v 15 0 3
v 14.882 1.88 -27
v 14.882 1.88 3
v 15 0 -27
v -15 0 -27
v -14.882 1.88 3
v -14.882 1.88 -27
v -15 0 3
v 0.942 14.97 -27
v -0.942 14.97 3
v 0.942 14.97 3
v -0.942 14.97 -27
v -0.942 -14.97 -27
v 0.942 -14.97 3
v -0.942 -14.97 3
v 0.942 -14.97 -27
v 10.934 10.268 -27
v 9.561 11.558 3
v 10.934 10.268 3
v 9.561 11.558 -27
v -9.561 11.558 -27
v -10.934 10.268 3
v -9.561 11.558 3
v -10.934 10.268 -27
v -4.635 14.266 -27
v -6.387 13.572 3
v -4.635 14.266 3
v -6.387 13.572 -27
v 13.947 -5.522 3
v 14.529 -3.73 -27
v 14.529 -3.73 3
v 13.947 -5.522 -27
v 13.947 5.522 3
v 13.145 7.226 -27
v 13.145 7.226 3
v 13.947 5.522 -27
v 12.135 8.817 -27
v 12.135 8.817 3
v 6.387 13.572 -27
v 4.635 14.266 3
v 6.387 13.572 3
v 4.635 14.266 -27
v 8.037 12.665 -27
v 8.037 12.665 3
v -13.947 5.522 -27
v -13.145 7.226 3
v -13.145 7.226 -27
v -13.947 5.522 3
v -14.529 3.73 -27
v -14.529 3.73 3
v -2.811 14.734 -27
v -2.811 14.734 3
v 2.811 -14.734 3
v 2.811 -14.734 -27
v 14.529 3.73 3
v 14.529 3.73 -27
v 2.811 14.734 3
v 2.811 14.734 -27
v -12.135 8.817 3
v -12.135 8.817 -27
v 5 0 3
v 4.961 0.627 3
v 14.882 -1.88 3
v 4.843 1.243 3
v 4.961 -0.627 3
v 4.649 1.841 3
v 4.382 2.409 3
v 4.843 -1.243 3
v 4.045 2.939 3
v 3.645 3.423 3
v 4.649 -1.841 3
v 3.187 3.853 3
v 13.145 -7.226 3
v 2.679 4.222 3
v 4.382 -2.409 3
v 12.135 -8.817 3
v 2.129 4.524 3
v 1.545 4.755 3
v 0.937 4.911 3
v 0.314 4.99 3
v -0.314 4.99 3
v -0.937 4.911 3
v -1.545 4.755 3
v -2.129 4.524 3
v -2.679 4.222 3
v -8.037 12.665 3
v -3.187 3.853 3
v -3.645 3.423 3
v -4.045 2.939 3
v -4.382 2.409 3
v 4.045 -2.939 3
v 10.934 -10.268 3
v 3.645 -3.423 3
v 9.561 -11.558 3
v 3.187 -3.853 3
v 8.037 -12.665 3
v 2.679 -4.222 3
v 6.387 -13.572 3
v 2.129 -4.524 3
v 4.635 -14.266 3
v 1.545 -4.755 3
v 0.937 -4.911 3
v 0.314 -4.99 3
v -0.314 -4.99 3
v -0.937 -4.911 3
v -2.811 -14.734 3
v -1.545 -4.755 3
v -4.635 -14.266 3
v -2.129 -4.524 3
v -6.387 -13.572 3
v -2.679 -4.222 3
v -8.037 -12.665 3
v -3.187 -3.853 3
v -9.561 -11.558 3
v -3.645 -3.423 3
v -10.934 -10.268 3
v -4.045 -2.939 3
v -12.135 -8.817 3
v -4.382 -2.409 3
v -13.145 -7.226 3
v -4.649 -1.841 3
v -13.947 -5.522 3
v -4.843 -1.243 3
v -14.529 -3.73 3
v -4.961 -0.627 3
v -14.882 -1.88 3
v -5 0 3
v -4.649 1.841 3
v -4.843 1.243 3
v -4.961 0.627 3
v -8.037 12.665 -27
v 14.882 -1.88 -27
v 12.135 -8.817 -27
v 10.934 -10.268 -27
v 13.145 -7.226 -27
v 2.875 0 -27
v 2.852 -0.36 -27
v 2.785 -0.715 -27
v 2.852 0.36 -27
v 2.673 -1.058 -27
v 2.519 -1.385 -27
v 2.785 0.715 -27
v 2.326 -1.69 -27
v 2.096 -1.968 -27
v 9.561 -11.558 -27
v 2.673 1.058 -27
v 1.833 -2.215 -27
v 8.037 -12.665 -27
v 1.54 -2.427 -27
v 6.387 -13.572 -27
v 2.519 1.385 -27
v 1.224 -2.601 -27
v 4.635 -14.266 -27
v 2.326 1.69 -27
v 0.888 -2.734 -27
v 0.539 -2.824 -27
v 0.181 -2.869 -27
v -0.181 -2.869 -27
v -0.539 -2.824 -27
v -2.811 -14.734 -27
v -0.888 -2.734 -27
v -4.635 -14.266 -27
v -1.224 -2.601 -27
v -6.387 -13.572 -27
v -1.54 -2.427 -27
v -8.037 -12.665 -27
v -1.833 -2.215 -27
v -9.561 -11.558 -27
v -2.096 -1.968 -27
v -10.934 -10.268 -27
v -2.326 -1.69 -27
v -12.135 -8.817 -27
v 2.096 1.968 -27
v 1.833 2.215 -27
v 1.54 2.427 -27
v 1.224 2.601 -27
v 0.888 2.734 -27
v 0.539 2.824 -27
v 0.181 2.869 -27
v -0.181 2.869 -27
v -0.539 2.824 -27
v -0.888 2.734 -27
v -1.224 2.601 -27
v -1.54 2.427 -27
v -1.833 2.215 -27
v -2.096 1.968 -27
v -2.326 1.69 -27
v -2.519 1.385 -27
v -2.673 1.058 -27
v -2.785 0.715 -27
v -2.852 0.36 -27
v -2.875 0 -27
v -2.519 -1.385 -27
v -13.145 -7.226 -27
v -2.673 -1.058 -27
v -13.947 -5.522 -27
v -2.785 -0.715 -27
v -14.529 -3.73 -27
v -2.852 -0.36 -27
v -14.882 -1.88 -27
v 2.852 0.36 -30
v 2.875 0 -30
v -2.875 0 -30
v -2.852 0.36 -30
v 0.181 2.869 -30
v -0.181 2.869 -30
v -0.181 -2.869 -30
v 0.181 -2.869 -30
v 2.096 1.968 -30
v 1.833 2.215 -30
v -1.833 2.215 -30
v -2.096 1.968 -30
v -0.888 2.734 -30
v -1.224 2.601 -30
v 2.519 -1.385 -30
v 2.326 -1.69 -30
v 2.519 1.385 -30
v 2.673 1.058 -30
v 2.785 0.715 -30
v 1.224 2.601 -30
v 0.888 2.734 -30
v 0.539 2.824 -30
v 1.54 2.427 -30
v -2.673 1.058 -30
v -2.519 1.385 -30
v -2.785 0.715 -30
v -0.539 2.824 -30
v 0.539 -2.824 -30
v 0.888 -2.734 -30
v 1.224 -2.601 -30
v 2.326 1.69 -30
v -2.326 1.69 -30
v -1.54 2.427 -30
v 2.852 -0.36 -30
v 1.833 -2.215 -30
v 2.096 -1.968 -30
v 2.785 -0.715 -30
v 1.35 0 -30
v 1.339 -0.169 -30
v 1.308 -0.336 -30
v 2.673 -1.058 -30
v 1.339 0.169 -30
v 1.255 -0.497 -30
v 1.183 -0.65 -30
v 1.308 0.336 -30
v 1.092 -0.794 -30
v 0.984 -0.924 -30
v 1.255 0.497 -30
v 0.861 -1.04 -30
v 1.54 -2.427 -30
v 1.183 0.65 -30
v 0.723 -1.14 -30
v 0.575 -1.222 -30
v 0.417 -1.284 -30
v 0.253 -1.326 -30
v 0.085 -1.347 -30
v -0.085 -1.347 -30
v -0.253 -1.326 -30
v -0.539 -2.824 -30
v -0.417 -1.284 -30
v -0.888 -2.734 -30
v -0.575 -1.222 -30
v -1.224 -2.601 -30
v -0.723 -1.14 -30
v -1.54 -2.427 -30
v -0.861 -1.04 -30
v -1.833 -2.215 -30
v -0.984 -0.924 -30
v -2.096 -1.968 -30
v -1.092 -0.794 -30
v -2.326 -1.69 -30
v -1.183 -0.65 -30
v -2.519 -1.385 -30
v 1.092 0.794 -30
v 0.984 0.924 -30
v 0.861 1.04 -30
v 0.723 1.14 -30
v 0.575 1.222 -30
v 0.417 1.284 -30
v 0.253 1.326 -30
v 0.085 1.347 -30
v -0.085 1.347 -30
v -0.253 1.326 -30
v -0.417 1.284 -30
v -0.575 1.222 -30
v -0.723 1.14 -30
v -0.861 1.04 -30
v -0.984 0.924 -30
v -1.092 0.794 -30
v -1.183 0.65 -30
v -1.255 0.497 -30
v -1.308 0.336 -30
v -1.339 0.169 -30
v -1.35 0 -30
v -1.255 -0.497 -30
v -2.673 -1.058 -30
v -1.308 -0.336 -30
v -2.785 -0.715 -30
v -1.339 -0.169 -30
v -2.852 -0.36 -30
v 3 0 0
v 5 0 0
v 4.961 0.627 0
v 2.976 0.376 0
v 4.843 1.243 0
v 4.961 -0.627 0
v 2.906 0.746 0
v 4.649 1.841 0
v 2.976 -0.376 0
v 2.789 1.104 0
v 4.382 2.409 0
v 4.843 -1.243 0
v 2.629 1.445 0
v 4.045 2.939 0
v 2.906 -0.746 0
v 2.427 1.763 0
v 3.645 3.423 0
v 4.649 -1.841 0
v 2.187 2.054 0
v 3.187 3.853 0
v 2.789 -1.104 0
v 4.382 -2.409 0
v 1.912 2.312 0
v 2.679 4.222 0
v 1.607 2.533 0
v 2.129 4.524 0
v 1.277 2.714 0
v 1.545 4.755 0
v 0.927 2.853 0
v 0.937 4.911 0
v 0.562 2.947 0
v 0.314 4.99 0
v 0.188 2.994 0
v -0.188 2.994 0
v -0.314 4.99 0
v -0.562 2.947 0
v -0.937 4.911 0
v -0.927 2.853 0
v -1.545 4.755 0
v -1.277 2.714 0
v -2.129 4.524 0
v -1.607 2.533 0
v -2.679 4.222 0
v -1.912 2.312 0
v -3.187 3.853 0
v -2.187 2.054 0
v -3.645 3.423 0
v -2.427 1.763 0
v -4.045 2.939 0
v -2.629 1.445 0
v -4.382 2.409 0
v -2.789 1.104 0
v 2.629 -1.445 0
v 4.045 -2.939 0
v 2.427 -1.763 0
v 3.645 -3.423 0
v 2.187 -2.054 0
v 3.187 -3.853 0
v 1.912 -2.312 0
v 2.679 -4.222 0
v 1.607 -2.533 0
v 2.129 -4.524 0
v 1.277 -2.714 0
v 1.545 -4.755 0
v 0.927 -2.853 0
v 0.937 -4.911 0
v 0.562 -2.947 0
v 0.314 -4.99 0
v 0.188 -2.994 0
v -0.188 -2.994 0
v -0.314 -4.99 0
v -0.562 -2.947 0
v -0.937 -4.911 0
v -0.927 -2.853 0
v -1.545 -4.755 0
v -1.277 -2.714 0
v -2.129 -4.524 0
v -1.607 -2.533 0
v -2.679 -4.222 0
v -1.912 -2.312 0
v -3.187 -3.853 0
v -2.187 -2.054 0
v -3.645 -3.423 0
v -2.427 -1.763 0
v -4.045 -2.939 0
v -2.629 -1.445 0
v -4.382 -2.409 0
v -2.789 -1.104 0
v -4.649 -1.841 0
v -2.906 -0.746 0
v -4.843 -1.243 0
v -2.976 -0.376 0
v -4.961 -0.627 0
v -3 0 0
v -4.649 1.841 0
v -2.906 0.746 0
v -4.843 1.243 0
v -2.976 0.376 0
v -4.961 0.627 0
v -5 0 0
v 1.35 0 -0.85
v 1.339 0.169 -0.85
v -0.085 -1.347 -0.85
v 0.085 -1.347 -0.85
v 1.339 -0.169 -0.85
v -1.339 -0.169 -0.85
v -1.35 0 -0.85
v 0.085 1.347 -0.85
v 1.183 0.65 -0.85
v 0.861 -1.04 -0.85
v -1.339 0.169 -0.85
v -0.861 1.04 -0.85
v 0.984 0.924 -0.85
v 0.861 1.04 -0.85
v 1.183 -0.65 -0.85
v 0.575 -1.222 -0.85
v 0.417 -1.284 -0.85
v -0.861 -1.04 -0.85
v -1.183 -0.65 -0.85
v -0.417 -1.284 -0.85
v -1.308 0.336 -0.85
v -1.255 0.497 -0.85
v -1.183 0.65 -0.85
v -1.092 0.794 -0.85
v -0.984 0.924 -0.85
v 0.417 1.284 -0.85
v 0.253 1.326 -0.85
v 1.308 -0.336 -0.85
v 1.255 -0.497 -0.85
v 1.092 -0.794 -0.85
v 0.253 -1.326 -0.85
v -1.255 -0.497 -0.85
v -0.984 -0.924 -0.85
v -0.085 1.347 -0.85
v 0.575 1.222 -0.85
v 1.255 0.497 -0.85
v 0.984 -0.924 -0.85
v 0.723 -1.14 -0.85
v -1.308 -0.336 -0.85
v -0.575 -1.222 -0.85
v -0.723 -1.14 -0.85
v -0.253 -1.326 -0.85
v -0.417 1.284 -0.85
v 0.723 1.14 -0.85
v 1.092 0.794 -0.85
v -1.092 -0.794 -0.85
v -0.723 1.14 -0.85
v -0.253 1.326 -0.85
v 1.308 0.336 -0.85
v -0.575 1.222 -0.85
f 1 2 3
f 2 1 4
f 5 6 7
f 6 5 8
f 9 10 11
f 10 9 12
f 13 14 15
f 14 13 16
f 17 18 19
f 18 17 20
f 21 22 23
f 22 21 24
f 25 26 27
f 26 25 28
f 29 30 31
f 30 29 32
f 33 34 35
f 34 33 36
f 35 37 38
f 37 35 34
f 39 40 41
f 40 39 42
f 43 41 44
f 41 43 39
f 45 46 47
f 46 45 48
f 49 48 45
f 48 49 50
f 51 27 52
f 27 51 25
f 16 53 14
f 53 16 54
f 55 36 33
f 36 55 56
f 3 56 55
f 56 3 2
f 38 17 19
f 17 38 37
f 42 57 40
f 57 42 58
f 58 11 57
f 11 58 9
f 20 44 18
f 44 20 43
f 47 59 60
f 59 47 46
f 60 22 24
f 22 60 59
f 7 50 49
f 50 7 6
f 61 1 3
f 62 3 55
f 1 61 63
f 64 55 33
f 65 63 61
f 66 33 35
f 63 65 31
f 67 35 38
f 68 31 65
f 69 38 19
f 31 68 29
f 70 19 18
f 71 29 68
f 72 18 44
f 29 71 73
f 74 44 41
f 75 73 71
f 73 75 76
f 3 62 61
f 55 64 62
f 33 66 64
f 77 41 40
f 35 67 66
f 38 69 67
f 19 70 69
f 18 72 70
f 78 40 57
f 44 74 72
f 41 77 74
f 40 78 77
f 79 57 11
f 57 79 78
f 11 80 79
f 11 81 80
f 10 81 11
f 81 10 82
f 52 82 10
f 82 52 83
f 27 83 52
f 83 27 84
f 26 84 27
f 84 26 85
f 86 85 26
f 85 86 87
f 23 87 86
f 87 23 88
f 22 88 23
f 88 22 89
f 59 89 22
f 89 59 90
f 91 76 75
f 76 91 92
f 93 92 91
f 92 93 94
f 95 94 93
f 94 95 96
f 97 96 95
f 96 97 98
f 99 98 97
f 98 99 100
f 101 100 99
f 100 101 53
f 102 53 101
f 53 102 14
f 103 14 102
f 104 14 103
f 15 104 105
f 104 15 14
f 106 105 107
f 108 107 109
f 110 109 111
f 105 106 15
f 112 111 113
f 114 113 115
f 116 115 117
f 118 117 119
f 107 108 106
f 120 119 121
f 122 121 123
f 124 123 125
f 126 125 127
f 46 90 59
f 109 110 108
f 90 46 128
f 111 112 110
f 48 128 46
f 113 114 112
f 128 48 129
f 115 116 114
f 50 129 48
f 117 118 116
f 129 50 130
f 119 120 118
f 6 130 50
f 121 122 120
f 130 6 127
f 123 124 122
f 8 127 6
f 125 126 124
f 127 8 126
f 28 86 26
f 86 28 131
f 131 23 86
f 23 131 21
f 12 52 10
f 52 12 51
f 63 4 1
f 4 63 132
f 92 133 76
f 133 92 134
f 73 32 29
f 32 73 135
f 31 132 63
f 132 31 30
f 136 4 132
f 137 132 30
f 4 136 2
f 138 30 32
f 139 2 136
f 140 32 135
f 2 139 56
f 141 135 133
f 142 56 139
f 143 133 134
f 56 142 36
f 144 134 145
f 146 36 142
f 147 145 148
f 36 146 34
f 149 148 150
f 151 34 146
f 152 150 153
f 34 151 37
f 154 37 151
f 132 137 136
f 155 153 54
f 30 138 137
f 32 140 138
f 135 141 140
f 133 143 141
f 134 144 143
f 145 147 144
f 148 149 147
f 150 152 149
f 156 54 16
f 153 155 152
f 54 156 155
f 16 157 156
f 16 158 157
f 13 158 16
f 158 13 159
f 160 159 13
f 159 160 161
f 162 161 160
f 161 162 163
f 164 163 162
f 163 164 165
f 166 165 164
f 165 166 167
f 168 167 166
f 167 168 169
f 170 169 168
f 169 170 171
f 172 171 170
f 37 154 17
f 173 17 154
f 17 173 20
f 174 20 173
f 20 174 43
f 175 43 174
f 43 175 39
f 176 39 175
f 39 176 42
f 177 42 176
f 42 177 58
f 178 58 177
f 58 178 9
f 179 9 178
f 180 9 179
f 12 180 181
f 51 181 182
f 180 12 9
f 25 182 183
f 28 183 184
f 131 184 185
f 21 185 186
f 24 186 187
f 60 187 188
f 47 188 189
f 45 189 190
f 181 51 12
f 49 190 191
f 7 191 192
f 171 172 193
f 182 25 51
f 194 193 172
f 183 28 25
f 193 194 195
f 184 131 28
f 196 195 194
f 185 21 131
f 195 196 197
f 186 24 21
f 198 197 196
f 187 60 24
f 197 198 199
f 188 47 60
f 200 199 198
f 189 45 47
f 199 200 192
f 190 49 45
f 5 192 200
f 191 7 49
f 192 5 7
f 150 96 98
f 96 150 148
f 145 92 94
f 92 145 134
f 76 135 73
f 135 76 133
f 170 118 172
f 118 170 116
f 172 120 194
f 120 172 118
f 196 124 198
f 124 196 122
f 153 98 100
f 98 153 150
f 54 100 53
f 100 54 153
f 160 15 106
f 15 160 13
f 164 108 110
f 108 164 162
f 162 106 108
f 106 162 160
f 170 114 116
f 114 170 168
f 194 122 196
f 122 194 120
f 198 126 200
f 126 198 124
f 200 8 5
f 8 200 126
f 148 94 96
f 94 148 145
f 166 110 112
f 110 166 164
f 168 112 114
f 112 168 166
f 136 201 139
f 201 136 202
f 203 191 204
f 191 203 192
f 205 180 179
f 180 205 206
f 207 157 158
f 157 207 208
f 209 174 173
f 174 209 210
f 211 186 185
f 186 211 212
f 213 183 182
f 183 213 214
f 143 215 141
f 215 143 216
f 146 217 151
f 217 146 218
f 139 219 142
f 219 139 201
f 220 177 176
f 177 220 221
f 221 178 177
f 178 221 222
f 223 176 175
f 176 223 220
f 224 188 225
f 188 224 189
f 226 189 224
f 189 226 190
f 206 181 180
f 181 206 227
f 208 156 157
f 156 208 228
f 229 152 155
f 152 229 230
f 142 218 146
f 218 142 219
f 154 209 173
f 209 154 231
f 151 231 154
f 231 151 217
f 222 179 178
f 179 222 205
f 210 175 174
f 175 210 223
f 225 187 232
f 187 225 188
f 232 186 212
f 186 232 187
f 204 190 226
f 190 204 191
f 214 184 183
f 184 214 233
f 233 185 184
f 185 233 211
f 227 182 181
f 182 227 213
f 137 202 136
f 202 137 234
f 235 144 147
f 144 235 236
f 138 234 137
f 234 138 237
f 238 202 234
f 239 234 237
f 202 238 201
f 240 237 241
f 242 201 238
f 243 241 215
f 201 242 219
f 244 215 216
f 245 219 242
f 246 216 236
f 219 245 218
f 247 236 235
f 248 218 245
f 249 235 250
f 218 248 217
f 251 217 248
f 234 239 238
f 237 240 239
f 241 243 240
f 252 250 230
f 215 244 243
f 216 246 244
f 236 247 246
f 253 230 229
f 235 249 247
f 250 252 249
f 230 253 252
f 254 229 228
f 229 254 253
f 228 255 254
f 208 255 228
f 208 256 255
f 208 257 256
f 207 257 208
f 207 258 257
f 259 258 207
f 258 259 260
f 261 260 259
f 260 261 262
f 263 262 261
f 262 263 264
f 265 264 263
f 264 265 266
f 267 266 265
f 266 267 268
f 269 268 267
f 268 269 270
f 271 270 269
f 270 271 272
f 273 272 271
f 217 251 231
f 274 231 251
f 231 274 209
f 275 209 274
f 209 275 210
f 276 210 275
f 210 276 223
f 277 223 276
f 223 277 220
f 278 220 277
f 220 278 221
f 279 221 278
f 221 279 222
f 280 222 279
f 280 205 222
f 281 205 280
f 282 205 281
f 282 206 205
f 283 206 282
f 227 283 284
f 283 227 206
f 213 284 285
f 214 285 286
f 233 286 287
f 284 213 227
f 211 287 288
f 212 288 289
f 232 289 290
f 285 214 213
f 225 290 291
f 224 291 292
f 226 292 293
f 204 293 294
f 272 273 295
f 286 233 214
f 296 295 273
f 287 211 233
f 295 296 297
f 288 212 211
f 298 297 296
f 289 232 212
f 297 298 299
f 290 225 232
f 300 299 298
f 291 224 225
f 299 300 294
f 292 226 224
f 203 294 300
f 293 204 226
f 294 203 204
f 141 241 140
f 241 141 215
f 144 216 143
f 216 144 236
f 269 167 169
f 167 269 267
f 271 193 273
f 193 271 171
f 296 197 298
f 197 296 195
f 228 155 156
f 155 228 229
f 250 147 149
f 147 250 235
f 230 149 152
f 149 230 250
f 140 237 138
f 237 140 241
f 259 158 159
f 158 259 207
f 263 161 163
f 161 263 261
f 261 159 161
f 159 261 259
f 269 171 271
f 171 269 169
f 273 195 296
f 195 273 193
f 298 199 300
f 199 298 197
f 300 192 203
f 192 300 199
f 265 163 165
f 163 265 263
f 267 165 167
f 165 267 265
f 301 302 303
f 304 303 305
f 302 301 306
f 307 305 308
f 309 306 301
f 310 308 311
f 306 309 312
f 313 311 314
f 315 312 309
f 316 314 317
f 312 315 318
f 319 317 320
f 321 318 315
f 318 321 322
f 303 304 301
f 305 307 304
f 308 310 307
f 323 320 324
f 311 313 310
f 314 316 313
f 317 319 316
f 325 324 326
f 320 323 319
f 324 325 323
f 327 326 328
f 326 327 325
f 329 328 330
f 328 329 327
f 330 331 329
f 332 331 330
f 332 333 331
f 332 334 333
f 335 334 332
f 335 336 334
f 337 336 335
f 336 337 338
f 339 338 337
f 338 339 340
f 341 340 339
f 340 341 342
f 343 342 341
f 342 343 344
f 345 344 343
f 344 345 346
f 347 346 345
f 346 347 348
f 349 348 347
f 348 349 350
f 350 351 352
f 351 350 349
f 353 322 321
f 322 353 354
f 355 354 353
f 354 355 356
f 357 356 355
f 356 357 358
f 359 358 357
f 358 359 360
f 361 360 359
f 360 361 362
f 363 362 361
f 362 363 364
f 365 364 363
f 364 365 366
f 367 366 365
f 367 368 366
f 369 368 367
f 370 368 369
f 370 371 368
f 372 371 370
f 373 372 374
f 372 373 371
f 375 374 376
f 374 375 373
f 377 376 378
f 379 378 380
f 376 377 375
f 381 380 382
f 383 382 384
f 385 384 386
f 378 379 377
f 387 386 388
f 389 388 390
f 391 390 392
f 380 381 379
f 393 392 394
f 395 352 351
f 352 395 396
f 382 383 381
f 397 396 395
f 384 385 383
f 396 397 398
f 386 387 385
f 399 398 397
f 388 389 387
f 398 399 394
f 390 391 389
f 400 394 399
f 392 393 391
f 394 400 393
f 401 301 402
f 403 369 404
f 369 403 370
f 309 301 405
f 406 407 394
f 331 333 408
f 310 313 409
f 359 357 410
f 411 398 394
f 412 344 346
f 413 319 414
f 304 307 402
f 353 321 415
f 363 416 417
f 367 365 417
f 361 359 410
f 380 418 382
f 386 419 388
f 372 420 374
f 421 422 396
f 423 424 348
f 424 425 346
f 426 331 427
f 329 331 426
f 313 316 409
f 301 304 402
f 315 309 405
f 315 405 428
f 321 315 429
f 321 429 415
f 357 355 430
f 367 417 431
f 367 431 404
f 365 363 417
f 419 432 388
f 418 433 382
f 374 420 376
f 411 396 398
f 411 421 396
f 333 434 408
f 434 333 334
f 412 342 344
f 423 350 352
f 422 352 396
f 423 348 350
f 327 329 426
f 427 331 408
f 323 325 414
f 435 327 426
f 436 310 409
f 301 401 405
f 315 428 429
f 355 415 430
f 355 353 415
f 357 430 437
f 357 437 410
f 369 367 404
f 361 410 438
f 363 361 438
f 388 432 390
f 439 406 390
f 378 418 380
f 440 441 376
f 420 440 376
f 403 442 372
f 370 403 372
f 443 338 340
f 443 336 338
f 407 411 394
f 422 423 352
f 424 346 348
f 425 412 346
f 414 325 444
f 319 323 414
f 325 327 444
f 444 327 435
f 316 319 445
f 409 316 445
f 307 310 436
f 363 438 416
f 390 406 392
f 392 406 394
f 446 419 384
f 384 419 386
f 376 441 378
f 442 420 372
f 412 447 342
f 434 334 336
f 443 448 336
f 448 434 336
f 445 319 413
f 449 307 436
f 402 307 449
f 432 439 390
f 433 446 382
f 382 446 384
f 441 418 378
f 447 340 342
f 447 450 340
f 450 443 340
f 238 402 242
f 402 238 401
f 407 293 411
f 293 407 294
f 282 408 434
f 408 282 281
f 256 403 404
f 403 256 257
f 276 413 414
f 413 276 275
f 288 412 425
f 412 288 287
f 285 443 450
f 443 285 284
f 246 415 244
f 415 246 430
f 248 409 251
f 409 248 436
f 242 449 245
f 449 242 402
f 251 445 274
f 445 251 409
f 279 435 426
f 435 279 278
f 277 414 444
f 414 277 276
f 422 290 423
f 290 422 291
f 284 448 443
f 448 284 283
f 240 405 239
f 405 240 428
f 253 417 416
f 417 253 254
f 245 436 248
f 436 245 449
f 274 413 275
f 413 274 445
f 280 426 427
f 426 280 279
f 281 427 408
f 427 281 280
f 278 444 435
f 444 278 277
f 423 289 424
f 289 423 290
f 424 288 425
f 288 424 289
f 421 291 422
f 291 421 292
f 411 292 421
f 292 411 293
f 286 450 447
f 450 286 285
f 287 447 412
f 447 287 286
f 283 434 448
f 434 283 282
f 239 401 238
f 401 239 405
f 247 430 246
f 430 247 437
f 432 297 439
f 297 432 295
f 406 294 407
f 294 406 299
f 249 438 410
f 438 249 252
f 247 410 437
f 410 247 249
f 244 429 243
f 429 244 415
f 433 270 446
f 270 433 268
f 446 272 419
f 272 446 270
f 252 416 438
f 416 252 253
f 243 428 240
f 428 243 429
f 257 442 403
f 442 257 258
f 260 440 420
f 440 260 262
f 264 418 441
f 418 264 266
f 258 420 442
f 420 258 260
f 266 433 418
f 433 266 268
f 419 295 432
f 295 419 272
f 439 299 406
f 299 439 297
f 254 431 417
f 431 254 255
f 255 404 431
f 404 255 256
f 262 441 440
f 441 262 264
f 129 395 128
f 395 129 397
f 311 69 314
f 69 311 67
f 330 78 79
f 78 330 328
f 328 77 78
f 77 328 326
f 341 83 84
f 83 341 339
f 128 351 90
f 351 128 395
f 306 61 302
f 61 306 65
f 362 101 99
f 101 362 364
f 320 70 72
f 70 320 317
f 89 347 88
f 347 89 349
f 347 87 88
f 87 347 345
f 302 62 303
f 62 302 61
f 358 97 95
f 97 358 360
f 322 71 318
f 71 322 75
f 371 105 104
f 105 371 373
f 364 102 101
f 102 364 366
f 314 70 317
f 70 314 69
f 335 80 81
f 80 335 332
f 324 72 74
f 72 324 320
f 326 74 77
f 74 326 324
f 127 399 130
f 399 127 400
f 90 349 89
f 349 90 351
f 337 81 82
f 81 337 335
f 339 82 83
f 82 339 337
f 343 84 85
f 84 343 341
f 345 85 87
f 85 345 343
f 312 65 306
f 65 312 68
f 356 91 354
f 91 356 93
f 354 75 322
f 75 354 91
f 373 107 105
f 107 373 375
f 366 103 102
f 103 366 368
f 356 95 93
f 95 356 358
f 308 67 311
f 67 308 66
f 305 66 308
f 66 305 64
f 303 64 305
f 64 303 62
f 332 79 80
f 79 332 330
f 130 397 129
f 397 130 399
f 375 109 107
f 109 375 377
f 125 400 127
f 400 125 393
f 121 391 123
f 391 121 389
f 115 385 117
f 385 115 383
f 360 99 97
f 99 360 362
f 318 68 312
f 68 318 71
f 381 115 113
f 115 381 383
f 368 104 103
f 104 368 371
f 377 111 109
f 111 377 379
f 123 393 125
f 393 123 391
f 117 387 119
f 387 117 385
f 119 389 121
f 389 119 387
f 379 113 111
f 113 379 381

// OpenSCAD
$fn = 50;

difference() {
	union() {
		translate(v = [0, 0, -27.0]) {
			cylinder(h = 30, r = 15.0);
		}
		#translate(v = [0, 0, -30.0]) {
			cylinder(h = 30, r = 2.875);
		}
	}
	union() {
		translate(v = [0, 0, 0]) {
			rotate(a = [0, 0, 0]) {
				difference() {
					union() {
						translate(v = [0, 0, -30.0]) {
							cylinder(h = 30, r = 1.0);
						}
						translate(v = [0, 0, -0.85]) {
							cylinder(h = 0.85, r1 = 1.35, r2 = 3.0);
						}
						translate(v = [0, 0, -30.0]) {
							cylinder(h = 30, r = 1.35);
						}
						translate(v = [0, 0, -30.0]) {
							cylinder(h = 30, r = 1.0);
						}
					}
					union();
				}
			}
		}
		#cylinder(h = 3, r = 5.0);
	}
}
